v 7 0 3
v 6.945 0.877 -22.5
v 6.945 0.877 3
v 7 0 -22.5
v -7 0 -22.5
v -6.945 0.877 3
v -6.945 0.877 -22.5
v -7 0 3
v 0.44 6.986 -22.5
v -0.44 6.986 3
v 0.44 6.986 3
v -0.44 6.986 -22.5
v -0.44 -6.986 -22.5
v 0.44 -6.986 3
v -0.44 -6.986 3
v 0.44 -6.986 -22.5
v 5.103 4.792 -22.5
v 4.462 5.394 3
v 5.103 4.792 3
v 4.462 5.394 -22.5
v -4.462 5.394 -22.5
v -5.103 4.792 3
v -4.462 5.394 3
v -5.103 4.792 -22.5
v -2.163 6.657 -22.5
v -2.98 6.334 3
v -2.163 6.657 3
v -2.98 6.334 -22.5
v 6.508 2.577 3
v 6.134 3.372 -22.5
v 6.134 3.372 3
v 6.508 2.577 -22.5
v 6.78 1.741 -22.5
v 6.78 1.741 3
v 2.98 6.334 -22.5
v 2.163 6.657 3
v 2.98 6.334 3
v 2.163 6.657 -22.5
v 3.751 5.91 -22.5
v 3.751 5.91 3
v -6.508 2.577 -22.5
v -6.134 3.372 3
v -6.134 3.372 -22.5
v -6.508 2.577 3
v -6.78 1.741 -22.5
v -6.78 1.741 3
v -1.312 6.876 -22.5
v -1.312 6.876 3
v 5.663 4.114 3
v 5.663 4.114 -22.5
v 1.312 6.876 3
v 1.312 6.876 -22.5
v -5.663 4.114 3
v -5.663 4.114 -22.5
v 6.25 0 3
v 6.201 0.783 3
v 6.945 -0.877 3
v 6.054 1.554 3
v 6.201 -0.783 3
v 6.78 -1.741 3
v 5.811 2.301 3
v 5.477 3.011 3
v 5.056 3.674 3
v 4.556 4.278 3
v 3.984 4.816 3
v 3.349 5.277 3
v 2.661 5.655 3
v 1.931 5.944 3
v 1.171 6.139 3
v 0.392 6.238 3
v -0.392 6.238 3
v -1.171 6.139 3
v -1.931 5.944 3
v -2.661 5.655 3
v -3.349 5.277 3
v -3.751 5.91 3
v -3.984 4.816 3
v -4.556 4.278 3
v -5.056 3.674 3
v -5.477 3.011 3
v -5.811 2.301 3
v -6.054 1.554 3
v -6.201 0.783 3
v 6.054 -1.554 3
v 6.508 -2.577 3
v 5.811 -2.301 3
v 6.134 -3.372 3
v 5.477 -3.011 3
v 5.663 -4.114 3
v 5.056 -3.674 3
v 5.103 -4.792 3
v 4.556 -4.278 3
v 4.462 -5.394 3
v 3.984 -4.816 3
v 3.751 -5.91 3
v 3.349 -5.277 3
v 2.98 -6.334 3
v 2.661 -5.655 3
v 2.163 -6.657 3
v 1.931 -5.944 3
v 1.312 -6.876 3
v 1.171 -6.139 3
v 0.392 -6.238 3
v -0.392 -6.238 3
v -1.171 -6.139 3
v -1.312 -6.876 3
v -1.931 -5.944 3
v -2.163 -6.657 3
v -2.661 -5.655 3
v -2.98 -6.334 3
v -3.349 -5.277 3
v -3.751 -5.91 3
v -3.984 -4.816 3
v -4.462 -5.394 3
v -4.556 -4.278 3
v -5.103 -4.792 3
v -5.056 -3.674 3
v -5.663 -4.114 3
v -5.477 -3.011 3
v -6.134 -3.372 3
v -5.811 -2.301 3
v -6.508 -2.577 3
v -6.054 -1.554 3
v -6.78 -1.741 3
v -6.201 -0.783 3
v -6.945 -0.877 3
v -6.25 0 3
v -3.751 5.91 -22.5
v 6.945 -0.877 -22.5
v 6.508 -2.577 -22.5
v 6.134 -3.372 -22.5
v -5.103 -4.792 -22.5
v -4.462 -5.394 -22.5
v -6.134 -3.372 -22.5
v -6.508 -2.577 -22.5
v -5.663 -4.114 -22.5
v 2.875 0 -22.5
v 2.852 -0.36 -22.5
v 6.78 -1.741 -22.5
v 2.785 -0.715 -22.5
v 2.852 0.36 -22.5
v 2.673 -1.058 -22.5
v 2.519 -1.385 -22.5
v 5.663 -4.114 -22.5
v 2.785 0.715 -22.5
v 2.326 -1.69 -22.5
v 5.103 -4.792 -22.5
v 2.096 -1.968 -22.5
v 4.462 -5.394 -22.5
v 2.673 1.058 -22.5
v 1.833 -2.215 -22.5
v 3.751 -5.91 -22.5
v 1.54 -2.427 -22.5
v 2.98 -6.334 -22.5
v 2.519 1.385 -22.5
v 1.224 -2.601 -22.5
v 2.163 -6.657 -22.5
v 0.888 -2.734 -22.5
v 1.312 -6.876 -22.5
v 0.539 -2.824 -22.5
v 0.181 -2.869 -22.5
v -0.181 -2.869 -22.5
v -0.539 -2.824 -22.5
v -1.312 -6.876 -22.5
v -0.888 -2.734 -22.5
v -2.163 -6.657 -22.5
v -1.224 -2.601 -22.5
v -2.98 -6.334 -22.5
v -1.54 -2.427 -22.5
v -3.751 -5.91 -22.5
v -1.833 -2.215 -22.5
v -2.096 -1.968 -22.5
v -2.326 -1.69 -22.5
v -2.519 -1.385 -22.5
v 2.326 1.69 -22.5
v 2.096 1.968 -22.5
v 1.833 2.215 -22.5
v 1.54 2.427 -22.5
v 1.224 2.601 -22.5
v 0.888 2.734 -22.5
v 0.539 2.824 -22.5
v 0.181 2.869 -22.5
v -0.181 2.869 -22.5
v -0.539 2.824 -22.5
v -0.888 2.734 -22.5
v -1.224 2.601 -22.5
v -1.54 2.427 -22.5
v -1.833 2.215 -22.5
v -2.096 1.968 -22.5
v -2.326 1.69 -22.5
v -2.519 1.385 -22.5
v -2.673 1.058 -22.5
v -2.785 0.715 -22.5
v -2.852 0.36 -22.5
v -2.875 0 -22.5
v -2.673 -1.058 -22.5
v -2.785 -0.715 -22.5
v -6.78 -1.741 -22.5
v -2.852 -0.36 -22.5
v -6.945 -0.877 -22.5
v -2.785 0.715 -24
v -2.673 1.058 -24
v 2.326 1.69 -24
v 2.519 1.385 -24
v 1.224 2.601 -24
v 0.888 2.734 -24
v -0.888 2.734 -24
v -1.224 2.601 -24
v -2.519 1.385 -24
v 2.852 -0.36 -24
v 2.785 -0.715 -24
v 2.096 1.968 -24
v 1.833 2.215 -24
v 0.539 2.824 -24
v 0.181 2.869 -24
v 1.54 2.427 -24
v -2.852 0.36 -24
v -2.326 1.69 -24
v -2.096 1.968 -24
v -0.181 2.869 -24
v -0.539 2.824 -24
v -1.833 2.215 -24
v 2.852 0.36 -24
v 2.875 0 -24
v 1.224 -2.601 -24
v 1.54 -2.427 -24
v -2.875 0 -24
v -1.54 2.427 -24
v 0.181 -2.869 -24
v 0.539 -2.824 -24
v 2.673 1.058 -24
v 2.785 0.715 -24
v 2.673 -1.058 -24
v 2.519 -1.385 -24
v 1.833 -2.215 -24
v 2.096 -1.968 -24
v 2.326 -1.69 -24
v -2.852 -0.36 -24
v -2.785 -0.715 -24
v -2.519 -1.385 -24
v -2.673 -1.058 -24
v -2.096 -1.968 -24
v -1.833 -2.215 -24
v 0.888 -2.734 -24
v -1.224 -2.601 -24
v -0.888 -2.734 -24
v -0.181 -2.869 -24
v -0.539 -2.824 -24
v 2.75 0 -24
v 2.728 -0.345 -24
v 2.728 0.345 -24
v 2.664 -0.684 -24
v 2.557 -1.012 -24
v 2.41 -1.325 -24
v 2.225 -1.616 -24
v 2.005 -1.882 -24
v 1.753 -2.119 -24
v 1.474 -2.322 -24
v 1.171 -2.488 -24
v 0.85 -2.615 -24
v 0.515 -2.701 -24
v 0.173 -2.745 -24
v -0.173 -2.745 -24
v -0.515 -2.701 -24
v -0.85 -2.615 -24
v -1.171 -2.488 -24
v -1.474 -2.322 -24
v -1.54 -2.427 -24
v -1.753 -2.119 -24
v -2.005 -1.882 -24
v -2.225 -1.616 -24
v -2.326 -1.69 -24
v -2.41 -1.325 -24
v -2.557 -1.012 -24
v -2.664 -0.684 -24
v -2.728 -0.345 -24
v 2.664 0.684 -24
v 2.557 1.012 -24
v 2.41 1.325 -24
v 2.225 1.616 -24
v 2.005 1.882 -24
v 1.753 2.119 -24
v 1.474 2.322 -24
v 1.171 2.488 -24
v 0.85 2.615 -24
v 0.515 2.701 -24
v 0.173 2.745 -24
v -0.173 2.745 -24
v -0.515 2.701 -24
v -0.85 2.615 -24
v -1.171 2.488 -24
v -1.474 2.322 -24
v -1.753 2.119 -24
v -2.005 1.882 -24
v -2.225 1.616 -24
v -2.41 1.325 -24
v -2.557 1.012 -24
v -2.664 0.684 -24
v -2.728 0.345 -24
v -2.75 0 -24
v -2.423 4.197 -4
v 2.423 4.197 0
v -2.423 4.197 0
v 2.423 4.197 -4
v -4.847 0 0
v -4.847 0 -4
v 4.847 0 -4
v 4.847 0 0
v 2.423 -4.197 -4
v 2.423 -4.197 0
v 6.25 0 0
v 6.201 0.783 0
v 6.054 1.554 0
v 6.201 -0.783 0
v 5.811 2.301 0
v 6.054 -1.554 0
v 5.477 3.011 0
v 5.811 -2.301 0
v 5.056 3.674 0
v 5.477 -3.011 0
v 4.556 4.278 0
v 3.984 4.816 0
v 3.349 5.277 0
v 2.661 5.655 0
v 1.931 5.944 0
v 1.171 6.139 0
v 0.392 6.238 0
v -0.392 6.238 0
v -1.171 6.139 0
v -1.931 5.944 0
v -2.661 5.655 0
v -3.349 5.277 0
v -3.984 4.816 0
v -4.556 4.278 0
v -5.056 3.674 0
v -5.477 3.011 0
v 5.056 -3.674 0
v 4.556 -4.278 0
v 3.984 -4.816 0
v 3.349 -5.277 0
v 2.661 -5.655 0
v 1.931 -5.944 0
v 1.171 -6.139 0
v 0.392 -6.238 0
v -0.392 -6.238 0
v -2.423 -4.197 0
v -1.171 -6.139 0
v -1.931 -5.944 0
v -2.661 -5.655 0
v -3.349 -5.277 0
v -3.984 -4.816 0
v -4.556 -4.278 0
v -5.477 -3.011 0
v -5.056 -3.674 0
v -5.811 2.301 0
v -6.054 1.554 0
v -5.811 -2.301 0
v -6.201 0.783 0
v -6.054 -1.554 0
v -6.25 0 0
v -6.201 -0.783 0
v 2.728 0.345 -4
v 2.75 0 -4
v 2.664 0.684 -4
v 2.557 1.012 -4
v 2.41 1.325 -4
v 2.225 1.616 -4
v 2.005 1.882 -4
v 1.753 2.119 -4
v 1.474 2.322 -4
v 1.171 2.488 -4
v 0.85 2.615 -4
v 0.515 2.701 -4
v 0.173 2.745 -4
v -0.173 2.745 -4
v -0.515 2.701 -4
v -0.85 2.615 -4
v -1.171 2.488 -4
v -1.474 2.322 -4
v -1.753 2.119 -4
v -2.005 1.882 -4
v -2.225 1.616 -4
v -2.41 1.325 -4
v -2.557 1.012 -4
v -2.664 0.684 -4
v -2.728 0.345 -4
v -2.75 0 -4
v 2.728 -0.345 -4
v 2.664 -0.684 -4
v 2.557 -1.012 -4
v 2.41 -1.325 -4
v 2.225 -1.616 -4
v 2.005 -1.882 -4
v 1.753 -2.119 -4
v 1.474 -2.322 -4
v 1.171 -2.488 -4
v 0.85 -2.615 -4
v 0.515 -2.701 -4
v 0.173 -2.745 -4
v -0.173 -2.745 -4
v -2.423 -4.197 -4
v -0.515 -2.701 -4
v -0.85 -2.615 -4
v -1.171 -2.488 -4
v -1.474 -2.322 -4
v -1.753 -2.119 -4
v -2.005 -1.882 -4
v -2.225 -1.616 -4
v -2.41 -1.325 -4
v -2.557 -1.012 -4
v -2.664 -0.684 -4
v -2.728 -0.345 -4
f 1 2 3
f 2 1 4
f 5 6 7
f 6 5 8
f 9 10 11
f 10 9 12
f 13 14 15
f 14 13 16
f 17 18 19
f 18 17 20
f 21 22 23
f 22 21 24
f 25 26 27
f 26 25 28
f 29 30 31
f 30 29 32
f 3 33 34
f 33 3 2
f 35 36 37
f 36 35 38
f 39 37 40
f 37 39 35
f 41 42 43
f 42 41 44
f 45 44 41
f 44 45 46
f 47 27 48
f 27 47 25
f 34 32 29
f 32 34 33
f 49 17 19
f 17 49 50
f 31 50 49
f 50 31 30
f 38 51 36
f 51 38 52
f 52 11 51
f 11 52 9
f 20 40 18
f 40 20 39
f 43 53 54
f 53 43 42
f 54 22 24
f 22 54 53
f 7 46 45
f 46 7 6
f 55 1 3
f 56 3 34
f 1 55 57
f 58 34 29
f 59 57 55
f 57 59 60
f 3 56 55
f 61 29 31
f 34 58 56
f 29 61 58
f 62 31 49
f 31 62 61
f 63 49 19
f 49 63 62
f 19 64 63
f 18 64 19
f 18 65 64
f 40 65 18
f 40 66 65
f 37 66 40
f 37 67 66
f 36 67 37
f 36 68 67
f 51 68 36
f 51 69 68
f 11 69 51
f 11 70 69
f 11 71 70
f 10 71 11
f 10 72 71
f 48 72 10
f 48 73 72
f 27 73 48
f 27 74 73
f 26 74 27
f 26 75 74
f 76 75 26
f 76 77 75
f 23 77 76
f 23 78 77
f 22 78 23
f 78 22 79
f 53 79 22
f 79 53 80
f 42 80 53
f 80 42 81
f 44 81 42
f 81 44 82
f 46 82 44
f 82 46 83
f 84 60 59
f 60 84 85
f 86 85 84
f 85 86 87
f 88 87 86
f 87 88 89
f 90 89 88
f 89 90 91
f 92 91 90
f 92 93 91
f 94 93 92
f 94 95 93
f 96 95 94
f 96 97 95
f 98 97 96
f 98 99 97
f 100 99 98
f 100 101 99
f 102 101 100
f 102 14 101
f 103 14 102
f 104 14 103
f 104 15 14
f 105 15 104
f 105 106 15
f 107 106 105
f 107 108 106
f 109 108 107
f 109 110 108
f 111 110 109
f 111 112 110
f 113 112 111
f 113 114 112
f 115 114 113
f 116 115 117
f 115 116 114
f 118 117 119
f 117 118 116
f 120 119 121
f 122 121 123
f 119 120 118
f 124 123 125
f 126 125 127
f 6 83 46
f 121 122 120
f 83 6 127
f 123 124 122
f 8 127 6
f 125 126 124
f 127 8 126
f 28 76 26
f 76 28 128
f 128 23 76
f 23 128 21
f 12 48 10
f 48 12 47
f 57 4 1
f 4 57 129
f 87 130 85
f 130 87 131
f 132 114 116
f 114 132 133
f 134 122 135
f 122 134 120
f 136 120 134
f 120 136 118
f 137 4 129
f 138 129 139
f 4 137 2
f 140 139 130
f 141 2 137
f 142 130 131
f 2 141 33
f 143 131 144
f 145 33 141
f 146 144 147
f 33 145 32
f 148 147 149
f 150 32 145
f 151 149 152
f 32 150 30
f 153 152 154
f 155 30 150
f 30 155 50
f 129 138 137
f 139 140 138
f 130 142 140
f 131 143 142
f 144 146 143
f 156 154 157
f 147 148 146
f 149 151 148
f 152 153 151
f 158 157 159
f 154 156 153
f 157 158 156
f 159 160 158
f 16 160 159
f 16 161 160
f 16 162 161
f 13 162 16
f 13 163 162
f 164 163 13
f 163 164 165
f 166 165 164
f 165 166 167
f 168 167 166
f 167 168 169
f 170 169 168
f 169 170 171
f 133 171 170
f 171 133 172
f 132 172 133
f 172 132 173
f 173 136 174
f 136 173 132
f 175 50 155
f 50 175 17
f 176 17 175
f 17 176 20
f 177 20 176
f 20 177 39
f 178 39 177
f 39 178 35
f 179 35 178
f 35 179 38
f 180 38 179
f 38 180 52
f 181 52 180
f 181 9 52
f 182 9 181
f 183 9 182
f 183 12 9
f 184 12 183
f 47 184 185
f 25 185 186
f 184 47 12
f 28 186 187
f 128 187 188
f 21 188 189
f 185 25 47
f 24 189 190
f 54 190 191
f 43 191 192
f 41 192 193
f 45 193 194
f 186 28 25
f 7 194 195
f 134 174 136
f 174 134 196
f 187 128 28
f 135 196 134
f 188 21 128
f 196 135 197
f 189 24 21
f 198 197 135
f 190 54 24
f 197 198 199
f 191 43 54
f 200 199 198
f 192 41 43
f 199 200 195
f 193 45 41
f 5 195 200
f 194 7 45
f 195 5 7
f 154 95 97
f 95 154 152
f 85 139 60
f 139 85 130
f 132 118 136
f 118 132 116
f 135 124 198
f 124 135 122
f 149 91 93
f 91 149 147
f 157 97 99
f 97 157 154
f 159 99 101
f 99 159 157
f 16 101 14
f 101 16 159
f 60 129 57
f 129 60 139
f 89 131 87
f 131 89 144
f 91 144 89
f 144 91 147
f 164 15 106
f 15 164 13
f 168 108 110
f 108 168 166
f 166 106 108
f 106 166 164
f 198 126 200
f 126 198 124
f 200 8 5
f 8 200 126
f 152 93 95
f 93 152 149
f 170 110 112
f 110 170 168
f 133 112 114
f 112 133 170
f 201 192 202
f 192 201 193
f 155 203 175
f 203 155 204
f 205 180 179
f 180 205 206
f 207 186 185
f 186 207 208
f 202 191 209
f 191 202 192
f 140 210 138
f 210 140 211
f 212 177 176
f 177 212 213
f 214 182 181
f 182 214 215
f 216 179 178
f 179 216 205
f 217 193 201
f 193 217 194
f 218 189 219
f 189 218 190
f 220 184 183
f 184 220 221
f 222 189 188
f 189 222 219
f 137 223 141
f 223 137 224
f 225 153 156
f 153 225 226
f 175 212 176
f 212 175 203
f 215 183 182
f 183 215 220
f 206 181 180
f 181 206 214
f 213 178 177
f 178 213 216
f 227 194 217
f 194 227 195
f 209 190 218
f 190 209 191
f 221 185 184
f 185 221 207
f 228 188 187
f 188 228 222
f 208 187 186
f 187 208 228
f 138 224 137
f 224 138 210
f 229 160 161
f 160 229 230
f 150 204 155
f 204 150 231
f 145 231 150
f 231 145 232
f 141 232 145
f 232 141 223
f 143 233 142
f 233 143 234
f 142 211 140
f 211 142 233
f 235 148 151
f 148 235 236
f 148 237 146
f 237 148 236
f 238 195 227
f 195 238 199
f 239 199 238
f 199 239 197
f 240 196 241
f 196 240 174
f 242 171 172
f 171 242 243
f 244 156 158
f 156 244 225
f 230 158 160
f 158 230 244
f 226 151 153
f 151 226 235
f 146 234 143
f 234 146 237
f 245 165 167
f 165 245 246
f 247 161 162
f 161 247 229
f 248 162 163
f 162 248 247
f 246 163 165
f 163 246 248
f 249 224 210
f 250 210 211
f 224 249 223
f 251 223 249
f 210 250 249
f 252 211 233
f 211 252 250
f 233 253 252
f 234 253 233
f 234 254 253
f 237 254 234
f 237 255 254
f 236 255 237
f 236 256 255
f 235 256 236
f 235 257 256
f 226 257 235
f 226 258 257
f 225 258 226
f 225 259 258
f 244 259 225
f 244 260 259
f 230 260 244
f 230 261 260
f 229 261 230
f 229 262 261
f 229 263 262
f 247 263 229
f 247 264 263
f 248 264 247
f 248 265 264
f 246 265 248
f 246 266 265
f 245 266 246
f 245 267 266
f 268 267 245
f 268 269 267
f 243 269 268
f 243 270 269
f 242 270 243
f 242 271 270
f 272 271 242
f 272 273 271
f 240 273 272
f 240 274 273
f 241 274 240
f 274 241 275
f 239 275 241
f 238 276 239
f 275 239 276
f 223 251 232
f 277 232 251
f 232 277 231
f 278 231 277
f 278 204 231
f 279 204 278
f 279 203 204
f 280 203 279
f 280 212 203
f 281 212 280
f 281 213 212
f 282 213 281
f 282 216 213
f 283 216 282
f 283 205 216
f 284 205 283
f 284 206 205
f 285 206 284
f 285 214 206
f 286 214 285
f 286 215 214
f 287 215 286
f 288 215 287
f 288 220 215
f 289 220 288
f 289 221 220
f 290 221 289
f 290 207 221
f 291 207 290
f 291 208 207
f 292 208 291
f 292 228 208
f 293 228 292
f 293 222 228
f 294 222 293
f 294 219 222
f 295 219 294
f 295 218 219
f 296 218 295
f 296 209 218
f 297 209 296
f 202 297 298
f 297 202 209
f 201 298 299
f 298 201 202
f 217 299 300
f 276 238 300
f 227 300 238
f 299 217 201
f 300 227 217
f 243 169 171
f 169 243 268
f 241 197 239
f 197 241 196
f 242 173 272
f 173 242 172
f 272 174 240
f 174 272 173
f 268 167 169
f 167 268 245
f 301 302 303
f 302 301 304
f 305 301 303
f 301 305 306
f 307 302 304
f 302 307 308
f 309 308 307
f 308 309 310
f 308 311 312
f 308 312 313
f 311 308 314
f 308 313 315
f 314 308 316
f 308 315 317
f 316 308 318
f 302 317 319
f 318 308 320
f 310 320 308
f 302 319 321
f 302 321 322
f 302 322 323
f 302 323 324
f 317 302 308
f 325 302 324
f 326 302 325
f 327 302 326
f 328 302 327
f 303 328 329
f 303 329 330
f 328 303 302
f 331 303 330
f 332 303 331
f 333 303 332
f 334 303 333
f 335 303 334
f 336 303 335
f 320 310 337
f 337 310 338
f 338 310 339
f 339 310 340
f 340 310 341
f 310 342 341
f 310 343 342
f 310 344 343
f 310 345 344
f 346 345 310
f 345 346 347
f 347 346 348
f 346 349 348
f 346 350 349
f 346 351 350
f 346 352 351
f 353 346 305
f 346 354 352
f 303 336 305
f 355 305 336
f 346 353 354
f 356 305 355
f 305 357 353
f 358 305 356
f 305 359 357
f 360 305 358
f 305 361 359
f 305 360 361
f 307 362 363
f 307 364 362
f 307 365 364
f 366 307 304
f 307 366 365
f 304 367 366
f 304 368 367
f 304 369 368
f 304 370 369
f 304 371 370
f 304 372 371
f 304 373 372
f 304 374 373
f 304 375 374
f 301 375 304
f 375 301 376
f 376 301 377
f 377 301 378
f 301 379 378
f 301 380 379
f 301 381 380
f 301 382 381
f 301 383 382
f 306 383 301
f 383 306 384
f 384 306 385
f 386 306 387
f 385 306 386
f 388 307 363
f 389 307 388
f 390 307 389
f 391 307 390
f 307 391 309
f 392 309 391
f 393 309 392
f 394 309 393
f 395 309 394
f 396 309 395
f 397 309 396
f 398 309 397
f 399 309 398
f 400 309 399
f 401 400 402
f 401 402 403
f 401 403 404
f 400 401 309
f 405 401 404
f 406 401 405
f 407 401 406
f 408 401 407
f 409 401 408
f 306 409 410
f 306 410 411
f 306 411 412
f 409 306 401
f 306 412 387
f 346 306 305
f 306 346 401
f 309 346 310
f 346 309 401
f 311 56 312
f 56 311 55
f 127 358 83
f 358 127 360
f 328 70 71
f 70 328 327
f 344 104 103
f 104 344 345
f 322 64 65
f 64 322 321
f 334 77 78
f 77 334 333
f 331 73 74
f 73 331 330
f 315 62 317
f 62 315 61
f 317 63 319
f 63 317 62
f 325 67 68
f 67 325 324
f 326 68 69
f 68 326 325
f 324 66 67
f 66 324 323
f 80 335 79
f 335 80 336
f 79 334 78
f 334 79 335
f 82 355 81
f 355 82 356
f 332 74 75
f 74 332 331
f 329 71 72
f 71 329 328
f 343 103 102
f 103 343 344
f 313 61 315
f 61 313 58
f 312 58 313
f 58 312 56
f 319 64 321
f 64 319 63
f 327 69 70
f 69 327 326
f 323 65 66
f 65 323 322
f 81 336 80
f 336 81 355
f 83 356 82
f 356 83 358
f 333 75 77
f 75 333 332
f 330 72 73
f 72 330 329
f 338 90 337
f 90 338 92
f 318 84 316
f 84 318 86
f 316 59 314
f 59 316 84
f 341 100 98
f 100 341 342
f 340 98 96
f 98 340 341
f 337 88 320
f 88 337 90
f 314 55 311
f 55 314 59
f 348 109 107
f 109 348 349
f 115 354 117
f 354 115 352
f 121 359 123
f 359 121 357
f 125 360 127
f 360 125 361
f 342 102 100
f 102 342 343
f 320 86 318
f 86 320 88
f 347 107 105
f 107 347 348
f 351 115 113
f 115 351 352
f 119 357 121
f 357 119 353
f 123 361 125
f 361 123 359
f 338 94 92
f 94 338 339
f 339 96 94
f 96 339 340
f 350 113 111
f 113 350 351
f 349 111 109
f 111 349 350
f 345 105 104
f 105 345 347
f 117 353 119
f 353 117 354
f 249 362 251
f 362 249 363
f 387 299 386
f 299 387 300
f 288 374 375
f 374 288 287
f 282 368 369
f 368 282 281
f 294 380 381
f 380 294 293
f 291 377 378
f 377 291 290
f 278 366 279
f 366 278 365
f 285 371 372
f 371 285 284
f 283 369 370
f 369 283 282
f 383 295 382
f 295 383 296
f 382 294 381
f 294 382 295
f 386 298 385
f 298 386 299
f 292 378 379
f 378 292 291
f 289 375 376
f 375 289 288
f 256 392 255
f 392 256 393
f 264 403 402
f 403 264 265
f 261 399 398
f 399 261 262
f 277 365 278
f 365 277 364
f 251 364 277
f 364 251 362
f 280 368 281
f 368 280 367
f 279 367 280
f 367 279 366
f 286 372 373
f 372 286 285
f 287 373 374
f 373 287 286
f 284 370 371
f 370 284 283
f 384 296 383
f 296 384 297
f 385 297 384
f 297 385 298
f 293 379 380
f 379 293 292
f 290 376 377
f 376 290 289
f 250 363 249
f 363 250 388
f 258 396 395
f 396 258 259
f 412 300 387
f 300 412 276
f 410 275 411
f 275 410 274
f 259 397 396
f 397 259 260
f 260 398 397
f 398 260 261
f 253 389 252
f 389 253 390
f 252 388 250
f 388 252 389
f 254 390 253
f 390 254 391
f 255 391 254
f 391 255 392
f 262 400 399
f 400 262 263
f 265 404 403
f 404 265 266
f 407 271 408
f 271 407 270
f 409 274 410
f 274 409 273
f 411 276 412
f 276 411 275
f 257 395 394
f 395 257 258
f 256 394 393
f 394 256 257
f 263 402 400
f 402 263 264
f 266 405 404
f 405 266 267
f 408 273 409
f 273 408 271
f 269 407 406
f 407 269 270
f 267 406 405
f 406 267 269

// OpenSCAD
$fn = 50;

difference() {
	union() {
		translate(v = [0, 0, -22.5]) {
			cylinder(h = 25.5, r = 7.0);
		}
		#translate(v = [0, 0, -24.0]) {
			cylinder(h = 24, r = 2.875);
		}
	}
	union() {
		translate(v = [0, 0, 0]) {
			rotate(a = [0, 0, 0]) {
				difference() {
					union() {
						translate(v = [0, 0, -4]) {
							linear_extrude(height = 4) {
								polygon(points = [[4.8468, 0.0], [2.4234000000000004, 4.197451927062417], [-2.423399999999999, 4.197451927062417], [-4.8468, 5.935618106107392e-16], [-2.423400000000002, -4.197451927062416], [2.423399999999997, -4.197451927062419]]);
							}
						}
					}
					union();
				}
			}
		}
		#cylinder(h = 3, r = 6.25);
		#translate(v = [0, 0, -100.0]) {
			cylinder(h = 200, r = 2.75);
		}
	}
}
